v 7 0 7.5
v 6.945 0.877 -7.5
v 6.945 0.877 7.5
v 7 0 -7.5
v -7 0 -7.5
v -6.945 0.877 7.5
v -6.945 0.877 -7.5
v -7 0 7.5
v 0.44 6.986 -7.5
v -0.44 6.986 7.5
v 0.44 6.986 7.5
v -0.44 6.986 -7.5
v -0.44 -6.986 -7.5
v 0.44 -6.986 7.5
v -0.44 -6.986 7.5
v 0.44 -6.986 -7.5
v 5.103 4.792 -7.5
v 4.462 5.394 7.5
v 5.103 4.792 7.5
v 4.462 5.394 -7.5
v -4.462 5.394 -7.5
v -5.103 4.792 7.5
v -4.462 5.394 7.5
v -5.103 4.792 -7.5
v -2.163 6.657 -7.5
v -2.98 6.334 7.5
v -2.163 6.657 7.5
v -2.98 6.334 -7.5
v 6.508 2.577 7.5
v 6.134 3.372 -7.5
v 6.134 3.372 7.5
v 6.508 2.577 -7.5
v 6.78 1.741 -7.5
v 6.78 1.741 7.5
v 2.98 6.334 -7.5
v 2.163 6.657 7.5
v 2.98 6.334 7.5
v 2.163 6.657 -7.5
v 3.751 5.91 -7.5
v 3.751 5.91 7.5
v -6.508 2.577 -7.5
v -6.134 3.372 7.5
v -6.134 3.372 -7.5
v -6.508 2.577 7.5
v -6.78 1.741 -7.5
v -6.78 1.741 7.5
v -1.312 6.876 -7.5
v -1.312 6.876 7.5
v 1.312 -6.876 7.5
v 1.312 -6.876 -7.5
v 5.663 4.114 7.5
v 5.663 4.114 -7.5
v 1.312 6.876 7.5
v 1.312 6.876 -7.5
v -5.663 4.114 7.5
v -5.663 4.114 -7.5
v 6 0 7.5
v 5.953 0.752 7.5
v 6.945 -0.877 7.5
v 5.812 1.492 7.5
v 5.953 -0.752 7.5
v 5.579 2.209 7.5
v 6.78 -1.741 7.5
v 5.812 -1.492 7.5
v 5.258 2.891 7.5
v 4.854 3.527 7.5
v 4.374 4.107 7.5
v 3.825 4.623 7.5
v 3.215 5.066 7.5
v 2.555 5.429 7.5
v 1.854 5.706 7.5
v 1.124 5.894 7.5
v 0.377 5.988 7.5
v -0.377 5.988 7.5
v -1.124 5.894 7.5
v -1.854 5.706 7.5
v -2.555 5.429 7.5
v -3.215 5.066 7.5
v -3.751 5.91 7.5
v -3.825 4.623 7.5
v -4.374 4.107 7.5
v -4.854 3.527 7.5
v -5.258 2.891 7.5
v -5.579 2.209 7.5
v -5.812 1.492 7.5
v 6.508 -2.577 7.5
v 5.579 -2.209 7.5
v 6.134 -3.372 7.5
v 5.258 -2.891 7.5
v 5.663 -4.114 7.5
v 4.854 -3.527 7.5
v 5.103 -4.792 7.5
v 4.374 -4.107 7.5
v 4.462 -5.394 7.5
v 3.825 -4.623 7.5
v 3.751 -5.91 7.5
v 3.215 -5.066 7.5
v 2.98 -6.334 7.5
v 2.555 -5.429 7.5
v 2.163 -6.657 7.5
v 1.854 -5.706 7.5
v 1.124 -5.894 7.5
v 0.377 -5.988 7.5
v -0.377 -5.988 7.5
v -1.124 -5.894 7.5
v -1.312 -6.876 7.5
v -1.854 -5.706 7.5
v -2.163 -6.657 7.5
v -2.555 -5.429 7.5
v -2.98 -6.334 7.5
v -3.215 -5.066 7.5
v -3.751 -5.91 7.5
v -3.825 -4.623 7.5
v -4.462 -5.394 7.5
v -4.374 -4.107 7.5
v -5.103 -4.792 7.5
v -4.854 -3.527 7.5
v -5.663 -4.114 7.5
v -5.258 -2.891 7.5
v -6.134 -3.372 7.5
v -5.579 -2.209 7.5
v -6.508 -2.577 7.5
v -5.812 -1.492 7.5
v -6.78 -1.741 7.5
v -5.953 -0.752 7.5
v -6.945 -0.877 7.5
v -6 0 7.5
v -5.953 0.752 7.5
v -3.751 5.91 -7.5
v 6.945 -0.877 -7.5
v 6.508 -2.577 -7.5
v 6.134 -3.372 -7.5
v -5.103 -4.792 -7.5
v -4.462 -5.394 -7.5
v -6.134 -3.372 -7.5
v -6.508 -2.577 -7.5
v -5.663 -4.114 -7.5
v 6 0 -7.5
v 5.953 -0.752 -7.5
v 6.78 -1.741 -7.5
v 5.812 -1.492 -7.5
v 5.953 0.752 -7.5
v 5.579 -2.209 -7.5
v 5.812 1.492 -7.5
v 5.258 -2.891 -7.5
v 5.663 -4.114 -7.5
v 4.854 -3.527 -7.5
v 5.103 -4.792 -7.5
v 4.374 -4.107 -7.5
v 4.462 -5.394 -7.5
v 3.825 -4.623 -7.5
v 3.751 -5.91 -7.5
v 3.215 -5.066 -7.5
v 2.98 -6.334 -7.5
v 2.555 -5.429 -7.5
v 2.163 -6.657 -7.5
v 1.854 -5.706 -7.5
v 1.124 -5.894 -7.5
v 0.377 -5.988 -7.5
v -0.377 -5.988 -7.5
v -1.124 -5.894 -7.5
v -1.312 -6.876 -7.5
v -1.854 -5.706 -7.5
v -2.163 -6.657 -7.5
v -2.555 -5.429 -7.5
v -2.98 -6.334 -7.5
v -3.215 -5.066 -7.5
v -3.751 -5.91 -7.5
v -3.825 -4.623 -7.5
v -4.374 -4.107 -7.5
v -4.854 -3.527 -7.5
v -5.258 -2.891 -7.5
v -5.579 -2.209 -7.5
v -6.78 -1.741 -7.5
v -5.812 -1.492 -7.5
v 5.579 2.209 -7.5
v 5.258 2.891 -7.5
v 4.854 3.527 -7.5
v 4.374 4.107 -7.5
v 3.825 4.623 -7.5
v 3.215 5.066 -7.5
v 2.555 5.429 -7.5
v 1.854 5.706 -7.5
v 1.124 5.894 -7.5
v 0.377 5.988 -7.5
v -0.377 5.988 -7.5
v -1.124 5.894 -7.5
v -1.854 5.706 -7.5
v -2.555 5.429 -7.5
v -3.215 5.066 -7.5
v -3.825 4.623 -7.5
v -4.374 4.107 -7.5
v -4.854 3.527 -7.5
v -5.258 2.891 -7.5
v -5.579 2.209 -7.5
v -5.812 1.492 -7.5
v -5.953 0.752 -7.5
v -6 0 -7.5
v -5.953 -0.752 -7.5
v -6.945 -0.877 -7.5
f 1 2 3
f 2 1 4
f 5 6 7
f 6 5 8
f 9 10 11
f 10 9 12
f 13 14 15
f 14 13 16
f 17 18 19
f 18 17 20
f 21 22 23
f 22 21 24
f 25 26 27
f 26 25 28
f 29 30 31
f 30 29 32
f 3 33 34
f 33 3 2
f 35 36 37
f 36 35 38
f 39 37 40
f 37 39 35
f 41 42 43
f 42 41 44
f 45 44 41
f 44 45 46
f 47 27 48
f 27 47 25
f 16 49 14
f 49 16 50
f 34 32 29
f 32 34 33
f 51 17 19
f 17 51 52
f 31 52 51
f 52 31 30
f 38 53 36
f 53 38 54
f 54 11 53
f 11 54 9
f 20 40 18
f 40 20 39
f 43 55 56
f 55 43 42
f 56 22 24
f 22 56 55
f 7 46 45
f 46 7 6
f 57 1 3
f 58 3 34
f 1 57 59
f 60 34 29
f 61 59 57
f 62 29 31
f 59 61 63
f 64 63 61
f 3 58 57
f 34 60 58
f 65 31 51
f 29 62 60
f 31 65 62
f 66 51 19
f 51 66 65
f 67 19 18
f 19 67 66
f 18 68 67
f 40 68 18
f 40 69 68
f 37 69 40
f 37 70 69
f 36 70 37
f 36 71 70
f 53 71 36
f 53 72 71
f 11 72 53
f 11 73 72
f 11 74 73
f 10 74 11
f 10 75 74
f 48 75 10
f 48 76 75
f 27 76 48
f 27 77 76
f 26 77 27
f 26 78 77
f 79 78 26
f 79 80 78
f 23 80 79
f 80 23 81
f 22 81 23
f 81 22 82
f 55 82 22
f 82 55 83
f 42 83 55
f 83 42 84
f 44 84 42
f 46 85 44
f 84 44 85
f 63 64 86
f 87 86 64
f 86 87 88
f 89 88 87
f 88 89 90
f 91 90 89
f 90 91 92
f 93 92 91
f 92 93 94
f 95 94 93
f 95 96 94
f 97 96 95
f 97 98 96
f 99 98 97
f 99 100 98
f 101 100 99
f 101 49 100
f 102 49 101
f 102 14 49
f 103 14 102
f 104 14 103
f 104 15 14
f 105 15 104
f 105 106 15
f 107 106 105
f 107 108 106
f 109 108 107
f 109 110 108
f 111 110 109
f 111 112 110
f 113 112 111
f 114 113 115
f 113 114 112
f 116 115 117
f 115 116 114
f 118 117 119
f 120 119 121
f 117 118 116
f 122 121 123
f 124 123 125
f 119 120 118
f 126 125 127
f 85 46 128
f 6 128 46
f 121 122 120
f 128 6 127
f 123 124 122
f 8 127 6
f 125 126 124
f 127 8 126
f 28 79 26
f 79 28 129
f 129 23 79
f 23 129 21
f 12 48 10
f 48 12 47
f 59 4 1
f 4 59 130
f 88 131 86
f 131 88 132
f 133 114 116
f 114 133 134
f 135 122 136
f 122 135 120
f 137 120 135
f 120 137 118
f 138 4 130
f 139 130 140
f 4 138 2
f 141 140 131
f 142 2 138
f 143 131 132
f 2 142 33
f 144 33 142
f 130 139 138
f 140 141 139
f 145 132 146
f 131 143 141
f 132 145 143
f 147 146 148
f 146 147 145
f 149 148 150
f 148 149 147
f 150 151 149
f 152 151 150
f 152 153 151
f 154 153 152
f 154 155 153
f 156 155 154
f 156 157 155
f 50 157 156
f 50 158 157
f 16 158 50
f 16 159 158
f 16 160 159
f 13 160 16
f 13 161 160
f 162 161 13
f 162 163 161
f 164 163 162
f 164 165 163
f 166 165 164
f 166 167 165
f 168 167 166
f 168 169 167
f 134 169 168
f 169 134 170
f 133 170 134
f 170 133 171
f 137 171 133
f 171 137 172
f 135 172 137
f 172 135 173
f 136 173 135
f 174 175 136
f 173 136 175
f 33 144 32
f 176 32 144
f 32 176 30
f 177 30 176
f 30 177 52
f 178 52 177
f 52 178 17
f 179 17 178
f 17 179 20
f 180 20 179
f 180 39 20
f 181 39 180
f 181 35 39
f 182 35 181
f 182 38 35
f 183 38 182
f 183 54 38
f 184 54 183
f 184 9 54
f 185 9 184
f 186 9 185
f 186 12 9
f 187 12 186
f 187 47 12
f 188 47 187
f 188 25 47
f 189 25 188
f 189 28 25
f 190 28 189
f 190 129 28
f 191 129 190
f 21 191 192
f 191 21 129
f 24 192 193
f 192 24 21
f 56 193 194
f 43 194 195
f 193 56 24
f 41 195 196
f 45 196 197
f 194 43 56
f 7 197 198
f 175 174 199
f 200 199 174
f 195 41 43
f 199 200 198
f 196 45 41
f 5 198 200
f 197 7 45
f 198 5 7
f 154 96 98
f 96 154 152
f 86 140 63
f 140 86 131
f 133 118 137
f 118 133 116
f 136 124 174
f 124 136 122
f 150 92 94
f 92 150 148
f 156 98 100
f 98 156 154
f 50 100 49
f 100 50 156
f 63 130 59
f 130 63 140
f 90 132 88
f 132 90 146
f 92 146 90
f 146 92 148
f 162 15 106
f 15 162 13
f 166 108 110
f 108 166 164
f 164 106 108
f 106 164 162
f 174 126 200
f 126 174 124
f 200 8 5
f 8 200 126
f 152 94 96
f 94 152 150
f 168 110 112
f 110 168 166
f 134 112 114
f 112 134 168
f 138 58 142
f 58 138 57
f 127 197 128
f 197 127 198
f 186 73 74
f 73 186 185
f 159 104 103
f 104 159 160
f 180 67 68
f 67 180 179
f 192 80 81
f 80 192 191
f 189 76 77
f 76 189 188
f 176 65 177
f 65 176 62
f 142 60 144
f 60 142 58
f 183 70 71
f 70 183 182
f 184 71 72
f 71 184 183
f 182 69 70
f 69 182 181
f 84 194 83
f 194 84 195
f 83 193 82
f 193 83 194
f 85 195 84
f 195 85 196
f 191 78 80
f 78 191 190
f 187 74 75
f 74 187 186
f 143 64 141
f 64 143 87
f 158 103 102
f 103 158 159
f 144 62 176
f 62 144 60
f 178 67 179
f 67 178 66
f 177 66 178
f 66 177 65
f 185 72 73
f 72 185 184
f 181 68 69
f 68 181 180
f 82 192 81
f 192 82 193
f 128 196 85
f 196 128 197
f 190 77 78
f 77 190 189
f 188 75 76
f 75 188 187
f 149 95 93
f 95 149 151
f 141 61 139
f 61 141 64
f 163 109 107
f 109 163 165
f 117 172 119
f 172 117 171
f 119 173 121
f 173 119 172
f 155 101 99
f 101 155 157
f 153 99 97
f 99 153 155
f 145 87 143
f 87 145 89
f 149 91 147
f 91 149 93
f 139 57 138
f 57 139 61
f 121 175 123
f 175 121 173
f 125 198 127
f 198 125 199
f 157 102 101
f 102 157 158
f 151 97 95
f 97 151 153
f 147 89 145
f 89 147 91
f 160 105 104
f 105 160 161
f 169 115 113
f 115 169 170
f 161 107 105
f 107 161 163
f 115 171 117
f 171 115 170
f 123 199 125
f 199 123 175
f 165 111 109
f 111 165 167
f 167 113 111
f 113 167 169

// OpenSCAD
$fn = 50;


difference() {
	union() {
		translate(v = [0, 0, -7.5000000000]) {
			cylinder(h = 15, r = 7.0000000000);
		}
	}
	union() {
		translate(v = [0, 0, -100.0000000000]) {
			cylinder(h = 200, r = 6);
		}
	}
}
